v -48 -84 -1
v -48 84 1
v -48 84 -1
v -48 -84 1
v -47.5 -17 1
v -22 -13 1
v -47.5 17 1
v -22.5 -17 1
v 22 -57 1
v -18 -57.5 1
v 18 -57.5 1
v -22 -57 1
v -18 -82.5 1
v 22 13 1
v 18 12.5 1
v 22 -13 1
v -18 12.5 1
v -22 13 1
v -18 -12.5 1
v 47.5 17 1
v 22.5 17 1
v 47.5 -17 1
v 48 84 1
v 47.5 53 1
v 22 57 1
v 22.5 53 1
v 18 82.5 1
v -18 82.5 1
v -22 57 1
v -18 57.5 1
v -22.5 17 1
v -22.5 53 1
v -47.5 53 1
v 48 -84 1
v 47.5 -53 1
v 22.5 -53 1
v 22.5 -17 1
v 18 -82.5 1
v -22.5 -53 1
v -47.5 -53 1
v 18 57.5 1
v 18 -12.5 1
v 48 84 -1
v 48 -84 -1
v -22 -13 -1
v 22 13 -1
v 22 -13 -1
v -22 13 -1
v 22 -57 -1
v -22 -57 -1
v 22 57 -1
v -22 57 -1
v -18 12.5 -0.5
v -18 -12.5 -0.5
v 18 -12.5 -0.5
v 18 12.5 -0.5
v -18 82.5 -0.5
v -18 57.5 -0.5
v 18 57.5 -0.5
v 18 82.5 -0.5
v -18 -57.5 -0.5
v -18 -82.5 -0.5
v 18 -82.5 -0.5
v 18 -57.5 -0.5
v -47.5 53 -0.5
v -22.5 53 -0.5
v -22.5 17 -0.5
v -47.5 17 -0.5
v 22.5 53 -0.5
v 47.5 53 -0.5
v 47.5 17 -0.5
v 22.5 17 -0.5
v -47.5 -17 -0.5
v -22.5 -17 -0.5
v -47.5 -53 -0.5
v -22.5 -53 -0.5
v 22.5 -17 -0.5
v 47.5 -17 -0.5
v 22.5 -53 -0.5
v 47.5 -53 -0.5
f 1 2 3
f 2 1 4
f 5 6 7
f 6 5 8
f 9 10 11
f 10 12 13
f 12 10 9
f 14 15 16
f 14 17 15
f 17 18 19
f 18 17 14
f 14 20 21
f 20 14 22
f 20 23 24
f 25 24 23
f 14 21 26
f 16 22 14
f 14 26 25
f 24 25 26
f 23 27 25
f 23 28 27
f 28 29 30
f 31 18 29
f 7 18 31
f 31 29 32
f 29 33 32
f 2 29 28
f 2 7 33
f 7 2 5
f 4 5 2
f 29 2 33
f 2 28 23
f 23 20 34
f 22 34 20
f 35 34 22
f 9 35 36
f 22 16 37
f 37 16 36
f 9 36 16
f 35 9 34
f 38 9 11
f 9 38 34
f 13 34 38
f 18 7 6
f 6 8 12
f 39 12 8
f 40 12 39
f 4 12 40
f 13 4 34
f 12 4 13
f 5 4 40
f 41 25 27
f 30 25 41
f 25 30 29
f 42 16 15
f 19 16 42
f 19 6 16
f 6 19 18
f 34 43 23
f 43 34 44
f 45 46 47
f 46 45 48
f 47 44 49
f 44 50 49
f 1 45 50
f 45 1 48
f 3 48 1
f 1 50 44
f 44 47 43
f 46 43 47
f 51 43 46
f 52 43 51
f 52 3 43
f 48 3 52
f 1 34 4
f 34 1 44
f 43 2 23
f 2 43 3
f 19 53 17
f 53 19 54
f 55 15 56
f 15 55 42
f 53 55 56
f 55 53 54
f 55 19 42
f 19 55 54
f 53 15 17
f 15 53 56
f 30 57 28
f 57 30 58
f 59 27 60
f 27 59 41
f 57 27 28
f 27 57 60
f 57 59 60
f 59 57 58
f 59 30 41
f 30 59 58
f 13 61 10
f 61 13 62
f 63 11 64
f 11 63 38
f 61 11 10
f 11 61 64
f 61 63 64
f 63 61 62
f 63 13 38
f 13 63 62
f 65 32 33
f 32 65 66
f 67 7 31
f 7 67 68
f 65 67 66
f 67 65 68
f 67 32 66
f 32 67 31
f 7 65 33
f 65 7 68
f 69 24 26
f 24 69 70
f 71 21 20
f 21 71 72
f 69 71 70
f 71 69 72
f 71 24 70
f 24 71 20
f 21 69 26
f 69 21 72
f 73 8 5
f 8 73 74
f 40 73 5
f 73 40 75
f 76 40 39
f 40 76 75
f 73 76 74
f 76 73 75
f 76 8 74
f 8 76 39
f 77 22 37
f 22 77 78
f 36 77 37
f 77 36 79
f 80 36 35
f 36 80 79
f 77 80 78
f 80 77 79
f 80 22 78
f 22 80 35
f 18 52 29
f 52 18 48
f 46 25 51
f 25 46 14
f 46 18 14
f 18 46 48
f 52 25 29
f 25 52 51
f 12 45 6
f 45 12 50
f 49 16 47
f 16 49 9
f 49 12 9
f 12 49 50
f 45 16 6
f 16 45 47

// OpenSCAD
 $fn=50;
difference(){
cube([96, 168, 2] , center=true);

translate([0,0,2])
cube([36, 25, 5] , center=true);
translate([0,70,2])
cube([36, 25, 5] , center=true);
translate([0,-70,2])
cube([36, 25, 5] , center=true);

rotate([0,0,90])
translate([35,35,2])
cube([36, 25, 5] , center=true);
rotate([0,0,90])
translate([35,-35,2])
cube([36, 25, 5] , center=true);
rotate([0,0,90])
translate([-35,35,2])
cube([36, 25, 5] , center=true);
rotate([0,0,90])
translate([-35,-35,2])
cube([36, 25, 5] , center=true);

translate([0,35,0])
cube([44, 44, 6] , center=true);
translate([0,-35,0])
cube([44, 44, 6] , center=true);

}
